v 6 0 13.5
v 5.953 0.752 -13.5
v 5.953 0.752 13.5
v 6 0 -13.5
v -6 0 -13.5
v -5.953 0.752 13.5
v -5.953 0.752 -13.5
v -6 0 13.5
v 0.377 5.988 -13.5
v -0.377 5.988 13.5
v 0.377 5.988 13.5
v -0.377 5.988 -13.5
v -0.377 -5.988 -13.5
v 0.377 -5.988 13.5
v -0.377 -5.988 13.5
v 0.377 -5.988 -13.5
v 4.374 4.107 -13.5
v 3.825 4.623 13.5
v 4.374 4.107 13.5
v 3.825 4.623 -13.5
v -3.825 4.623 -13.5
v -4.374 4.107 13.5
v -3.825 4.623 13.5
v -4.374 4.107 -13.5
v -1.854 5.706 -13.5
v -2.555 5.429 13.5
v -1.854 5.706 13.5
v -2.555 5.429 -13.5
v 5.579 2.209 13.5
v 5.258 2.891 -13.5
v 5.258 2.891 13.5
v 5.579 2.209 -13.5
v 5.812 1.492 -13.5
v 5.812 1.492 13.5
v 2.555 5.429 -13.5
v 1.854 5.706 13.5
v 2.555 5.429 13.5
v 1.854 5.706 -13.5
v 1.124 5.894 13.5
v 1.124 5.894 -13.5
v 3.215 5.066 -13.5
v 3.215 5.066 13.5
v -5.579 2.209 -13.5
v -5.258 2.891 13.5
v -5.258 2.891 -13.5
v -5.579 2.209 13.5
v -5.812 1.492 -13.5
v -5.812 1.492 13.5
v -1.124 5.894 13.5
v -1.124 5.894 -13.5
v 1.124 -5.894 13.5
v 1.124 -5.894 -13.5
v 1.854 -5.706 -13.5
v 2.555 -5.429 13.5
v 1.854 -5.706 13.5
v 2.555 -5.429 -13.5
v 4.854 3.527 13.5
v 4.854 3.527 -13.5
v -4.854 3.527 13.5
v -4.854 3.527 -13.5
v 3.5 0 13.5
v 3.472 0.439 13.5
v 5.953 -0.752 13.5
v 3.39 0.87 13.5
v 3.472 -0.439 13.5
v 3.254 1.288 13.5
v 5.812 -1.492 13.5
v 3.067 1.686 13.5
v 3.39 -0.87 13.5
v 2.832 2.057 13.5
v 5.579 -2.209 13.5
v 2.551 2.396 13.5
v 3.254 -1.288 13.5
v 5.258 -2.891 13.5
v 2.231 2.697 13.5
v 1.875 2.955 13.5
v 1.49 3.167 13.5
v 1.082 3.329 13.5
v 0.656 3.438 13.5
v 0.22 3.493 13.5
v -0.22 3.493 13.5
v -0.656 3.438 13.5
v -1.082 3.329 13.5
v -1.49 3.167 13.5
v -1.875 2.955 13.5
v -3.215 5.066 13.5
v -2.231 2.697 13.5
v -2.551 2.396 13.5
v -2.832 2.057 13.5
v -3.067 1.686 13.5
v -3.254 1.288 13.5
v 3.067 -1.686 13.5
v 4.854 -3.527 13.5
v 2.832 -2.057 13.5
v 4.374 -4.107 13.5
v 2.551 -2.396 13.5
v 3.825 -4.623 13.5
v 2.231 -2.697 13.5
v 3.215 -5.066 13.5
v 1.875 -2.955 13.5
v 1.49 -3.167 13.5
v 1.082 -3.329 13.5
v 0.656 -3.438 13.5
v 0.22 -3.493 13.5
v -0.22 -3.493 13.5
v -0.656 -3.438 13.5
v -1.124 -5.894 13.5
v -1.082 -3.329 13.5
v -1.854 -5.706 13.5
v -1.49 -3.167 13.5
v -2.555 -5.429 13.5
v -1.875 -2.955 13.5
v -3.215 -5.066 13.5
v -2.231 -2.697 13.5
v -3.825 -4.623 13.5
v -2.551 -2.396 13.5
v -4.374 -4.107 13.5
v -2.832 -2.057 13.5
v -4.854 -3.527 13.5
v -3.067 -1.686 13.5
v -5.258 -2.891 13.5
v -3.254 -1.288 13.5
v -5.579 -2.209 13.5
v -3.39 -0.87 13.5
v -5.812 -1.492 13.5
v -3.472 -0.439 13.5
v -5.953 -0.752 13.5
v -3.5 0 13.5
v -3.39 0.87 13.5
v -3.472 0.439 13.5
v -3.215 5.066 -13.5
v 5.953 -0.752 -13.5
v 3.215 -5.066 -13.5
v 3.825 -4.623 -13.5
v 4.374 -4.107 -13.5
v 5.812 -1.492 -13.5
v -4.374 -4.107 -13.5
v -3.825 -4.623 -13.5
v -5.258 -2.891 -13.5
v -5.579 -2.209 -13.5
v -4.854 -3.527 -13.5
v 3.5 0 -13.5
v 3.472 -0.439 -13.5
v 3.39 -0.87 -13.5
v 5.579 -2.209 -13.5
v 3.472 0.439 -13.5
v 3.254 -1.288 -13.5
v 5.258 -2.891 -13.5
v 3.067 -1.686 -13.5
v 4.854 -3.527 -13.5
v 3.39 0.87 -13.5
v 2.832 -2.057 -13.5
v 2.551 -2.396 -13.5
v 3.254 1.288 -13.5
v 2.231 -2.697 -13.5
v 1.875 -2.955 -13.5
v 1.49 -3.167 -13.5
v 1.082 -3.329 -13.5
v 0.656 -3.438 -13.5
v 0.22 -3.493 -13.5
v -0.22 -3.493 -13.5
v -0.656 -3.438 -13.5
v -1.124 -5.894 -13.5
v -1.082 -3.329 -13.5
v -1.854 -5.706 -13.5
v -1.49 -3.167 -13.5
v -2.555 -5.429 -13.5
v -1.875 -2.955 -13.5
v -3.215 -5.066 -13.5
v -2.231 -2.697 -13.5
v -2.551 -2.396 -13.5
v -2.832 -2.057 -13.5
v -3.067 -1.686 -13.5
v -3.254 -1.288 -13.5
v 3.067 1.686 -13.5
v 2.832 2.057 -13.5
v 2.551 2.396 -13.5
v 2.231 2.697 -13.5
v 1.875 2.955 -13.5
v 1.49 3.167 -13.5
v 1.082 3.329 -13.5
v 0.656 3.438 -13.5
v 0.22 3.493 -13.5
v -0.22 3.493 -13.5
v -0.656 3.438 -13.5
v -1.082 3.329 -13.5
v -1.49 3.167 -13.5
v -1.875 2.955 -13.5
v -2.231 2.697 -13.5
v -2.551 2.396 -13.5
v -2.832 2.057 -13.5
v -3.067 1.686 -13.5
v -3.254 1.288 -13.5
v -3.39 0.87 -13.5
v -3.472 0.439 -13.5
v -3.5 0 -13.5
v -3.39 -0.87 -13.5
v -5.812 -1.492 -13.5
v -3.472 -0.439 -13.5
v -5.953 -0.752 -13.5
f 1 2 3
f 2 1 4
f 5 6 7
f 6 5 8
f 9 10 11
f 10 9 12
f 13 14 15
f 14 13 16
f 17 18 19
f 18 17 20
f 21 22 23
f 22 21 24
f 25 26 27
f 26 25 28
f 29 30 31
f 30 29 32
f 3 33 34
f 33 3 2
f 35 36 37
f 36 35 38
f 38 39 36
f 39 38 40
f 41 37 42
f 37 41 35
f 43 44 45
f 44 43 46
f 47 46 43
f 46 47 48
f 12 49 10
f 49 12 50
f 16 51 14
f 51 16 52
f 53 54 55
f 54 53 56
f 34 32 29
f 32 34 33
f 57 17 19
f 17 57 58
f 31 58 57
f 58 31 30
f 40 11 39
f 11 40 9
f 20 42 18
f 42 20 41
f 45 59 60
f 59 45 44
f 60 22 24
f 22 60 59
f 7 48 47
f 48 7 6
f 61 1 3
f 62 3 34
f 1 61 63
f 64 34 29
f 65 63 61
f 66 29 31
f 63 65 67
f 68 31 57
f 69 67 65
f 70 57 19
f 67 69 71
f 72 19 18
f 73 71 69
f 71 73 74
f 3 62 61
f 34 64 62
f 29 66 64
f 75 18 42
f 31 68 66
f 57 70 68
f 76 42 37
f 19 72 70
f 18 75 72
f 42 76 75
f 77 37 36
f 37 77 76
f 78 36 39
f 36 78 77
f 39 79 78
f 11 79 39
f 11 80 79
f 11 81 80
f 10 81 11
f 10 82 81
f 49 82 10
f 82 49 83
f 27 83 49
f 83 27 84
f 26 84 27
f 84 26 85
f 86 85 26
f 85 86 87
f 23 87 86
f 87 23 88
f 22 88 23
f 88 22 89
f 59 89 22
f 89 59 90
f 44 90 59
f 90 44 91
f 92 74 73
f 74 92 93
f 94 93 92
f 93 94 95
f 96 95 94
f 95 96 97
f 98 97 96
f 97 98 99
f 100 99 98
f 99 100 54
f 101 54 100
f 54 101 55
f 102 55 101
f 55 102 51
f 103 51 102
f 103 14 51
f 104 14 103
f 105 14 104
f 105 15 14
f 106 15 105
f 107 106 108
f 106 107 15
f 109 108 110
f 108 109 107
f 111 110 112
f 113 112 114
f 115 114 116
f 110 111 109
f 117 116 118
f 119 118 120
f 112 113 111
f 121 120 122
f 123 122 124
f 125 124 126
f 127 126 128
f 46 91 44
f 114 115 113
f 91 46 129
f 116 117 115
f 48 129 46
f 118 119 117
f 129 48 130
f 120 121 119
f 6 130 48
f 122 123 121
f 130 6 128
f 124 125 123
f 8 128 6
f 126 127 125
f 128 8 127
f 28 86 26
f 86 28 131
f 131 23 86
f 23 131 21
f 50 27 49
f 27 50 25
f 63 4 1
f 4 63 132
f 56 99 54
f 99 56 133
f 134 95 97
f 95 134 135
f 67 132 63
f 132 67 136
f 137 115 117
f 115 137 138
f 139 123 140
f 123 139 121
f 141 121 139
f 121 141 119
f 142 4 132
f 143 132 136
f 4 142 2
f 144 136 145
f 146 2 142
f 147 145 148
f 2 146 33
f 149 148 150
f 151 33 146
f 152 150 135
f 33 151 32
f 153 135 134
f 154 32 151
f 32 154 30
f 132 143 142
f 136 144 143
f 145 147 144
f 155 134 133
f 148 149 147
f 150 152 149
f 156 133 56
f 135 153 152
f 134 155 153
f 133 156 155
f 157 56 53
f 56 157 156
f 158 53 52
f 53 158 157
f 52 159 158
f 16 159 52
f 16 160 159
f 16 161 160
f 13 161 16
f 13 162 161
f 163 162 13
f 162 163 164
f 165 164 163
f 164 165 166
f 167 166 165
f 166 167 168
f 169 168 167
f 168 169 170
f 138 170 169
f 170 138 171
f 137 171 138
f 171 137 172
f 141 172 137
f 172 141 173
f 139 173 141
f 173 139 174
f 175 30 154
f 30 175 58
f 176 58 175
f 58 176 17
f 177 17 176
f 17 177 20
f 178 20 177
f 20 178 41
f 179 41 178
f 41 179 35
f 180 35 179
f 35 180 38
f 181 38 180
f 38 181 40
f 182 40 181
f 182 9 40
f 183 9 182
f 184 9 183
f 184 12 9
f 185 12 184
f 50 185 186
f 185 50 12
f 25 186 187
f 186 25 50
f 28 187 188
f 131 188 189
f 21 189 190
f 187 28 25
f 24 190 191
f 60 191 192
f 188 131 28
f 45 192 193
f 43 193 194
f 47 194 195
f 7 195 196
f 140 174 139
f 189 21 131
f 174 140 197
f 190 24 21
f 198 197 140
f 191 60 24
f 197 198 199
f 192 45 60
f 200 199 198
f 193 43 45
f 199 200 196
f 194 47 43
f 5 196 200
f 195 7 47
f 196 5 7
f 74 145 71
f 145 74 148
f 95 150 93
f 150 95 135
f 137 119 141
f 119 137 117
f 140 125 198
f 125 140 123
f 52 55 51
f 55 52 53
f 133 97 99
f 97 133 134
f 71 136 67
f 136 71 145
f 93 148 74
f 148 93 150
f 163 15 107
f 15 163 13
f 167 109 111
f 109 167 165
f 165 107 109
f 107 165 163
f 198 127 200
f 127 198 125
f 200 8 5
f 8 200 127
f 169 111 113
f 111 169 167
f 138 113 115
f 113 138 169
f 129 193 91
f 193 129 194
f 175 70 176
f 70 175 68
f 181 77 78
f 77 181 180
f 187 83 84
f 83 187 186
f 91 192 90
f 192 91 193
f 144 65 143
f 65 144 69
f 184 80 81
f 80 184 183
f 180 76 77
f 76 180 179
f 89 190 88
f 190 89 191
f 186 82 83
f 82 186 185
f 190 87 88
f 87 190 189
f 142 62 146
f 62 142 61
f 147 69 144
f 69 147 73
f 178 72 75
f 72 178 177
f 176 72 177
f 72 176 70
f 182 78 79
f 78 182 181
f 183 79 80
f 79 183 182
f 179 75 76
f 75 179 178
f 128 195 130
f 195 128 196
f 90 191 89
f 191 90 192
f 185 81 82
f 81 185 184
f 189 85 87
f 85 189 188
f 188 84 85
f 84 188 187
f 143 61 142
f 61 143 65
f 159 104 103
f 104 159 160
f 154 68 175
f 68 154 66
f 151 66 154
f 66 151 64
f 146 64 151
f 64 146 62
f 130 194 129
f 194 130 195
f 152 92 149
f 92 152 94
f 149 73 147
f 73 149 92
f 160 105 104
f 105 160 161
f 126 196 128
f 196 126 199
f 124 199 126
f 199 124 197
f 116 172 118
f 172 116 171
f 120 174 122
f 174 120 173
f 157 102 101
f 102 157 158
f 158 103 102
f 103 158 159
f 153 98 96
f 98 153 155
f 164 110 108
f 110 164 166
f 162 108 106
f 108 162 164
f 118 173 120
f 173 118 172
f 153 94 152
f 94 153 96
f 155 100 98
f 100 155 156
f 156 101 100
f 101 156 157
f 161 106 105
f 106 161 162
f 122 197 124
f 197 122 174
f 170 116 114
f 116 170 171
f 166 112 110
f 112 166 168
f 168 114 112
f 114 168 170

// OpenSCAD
$fn = 50;


difference() {
	union() {
		translate(v = [0, 0, -13.5000000000]) {
			cylinder(h = 27, r = 6.0000000000);
		}
	}
	union() {
		translate(v = [0, 0, -100.0000000000]) {
			cylinder(h = 200, r = 3.5000000000);
		}
	}
}
